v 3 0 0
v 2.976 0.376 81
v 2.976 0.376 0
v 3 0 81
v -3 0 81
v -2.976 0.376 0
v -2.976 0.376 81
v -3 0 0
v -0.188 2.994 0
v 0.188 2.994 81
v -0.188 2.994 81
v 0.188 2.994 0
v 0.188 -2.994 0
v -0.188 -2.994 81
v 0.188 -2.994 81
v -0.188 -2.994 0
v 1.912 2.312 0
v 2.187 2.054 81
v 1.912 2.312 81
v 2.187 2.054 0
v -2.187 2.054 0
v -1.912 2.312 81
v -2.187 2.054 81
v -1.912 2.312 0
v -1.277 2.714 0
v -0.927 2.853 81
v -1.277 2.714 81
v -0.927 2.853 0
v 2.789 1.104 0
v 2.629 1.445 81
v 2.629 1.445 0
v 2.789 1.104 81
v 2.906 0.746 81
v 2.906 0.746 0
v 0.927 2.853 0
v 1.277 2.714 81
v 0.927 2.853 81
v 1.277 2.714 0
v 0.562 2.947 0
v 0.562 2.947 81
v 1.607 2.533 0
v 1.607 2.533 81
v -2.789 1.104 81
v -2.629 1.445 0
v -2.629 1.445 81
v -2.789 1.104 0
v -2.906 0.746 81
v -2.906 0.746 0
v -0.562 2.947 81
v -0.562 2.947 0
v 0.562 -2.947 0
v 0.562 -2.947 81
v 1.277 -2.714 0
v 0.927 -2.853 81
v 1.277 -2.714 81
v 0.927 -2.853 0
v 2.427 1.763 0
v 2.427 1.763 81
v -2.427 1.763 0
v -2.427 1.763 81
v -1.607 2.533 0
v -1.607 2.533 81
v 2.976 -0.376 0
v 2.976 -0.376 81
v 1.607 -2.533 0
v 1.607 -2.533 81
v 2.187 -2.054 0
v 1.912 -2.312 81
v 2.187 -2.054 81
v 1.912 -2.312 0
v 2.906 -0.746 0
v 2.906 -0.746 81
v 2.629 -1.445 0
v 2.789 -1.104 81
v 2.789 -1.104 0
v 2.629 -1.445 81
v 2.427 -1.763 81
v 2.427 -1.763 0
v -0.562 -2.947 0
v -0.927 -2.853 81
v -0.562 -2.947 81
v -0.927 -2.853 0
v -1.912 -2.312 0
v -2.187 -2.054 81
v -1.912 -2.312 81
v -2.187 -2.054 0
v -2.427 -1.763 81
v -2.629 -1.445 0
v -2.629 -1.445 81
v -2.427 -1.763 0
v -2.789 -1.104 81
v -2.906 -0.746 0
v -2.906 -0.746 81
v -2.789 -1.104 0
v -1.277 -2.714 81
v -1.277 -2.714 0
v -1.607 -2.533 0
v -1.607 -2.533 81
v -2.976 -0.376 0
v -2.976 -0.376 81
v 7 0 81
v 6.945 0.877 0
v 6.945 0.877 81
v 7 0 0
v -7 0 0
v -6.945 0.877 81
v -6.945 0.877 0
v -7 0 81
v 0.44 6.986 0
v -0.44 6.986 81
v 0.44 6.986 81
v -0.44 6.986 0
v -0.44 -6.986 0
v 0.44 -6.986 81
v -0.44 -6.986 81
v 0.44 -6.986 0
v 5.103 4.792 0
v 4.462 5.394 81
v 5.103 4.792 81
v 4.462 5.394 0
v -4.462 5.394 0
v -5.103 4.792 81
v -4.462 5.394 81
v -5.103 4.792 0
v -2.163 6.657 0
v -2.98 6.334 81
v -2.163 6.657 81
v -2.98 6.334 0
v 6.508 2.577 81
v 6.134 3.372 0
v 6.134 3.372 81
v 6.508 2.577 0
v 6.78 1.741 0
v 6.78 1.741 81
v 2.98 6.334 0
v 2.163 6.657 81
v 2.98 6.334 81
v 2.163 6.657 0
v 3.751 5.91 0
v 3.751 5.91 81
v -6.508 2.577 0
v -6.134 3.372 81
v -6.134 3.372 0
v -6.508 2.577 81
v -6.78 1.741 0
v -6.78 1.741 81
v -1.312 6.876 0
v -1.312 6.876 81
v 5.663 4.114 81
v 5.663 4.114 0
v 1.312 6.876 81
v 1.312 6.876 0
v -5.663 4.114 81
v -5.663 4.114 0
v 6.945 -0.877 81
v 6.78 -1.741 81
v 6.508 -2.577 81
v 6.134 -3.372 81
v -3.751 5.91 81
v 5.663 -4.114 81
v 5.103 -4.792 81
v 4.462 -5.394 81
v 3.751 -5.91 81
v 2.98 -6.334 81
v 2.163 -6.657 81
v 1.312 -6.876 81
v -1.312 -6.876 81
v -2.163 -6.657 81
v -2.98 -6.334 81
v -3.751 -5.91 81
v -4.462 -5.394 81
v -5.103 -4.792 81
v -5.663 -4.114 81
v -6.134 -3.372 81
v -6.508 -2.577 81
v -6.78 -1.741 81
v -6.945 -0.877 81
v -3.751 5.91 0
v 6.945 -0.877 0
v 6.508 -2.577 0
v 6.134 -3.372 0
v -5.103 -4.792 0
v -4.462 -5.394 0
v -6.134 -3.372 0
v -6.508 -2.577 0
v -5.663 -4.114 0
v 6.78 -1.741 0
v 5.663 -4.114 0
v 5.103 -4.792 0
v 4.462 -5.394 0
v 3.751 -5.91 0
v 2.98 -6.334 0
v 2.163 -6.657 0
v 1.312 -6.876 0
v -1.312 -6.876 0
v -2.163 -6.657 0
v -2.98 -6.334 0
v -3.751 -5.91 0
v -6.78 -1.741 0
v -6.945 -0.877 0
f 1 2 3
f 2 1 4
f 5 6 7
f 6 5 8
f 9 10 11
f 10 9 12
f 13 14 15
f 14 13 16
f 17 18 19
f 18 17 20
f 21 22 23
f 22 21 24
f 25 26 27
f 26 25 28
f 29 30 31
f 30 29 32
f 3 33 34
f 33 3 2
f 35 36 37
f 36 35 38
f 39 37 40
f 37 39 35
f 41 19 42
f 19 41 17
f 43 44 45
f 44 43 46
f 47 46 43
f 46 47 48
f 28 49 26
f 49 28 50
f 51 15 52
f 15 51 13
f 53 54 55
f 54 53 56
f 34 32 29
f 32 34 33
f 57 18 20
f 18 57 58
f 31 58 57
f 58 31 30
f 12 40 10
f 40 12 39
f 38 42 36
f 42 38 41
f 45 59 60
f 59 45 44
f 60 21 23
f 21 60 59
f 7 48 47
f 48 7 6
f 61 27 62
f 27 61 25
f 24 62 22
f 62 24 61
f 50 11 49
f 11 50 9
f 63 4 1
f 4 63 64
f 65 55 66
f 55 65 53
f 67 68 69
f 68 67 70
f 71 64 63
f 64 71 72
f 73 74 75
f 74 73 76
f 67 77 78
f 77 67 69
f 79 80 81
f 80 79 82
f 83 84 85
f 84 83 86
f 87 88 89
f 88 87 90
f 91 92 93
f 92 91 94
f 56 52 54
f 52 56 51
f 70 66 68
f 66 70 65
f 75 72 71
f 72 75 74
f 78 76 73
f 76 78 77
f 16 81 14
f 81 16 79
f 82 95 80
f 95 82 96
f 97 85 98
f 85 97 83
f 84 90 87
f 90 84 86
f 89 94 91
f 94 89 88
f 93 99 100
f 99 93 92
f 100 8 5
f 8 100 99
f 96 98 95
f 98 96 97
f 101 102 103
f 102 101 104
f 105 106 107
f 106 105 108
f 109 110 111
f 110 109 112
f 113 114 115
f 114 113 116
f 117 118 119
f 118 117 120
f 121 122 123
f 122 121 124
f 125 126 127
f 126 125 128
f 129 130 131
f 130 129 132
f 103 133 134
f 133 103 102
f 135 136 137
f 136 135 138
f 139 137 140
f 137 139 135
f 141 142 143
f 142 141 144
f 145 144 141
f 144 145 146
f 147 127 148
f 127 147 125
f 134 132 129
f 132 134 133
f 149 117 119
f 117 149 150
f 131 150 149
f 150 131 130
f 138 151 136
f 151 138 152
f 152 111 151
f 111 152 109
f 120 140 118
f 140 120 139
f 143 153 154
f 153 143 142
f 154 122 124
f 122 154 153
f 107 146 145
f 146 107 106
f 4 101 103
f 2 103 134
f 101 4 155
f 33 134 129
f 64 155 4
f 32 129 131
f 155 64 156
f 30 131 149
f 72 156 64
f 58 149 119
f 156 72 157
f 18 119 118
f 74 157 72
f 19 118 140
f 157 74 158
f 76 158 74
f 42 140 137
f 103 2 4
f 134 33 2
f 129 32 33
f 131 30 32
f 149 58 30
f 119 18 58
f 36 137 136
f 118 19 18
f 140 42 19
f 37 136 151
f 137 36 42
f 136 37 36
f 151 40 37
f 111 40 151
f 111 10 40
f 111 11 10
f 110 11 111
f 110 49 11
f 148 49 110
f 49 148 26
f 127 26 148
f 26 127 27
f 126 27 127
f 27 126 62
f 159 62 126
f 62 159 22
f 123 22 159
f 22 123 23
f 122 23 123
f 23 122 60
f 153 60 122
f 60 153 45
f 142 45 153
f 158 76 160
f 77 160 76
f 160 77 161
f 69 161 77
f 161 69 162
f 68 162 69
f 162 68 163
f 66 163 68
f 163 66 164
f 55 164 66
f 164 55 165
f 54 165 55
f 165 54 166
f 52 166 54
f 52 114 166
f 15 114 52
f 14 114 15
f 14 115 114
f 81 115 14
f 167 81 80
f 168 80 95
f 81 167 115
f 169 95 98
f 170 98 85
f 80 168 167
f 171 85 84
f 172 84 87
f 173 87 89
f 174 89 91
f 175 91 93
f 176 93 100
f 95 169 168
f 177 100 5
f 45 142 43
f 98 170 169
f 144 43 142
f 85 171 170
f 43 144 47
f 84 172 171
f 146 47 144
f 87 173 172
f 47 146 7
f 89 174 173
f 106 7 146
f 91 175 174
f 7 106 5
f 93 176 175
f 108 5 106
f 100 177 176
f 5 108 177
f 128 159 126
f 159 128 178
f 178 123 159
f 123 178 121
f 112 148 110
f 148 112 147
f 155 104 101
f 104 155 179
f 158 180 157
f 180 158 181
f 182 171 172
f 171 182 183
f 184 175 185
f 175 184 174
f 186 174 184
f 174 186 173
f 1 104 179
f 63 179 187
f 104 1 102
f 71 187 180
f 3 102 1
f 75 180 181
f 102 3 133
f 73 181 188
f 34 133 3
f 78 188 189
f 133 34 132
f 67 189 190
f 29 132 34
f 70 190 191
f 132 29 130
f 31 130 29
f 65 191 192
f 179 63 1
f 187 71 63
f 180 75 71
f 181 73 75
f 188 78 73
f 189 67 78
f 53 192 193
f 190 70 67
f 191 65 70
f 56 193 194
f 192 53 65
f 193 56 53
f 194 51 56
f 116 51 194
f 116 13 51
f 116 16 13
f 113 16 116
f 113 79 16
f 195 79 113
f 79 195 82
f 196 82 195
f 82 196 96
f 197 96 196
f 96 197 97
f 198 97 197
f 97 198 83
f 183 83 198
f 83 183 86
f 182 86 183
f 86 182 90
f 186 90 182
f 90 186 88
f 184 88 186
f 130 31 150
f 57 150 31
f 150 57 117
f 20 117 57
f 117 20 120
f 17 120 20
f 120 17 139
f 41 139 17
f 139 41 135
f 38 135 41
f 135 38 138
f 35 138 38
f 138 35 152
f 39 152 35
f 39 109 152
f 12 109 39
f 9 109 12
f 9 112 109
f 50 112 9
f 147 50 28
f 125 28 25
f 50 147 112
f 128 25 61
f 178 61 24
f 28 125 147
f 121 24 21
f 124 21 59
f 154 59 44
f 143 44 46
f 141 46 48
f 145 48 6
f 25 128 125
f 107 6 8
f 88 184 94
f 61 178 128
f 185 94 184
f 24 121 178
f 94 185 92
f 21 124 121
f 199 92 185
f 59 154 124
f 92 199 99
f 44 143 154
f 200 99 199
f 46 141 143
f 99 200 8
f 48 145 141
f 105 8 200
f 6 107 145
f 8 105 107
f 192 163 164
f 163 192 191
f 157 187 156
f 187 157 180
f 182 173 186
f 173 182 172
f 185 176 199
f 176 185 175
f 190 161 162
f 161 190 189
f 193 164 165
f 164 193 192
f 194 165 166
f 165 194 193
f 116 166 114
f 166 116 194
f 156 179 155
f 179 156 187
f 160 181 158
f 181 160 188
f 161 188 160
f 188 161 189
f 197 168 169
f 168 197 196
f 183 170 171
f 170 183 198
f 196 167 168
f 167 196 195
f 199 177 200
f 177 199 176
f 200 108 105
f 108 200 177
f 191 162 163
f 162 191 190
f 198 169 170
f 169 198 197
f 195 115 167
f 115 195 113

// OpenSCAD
$fn = 50;


difference() {
	union() {
		cylinder(h = 81, r = 7.0000000000);
	}
	union() {
		translate(v = [0, 0, -100]) {
			cylinder(h = 200, r = 3.0000000000);
		}
		translate(v = [0, 0, -100]) {
			cylinder(h = 200, r = 1.5000000000);
		}
	}
}
